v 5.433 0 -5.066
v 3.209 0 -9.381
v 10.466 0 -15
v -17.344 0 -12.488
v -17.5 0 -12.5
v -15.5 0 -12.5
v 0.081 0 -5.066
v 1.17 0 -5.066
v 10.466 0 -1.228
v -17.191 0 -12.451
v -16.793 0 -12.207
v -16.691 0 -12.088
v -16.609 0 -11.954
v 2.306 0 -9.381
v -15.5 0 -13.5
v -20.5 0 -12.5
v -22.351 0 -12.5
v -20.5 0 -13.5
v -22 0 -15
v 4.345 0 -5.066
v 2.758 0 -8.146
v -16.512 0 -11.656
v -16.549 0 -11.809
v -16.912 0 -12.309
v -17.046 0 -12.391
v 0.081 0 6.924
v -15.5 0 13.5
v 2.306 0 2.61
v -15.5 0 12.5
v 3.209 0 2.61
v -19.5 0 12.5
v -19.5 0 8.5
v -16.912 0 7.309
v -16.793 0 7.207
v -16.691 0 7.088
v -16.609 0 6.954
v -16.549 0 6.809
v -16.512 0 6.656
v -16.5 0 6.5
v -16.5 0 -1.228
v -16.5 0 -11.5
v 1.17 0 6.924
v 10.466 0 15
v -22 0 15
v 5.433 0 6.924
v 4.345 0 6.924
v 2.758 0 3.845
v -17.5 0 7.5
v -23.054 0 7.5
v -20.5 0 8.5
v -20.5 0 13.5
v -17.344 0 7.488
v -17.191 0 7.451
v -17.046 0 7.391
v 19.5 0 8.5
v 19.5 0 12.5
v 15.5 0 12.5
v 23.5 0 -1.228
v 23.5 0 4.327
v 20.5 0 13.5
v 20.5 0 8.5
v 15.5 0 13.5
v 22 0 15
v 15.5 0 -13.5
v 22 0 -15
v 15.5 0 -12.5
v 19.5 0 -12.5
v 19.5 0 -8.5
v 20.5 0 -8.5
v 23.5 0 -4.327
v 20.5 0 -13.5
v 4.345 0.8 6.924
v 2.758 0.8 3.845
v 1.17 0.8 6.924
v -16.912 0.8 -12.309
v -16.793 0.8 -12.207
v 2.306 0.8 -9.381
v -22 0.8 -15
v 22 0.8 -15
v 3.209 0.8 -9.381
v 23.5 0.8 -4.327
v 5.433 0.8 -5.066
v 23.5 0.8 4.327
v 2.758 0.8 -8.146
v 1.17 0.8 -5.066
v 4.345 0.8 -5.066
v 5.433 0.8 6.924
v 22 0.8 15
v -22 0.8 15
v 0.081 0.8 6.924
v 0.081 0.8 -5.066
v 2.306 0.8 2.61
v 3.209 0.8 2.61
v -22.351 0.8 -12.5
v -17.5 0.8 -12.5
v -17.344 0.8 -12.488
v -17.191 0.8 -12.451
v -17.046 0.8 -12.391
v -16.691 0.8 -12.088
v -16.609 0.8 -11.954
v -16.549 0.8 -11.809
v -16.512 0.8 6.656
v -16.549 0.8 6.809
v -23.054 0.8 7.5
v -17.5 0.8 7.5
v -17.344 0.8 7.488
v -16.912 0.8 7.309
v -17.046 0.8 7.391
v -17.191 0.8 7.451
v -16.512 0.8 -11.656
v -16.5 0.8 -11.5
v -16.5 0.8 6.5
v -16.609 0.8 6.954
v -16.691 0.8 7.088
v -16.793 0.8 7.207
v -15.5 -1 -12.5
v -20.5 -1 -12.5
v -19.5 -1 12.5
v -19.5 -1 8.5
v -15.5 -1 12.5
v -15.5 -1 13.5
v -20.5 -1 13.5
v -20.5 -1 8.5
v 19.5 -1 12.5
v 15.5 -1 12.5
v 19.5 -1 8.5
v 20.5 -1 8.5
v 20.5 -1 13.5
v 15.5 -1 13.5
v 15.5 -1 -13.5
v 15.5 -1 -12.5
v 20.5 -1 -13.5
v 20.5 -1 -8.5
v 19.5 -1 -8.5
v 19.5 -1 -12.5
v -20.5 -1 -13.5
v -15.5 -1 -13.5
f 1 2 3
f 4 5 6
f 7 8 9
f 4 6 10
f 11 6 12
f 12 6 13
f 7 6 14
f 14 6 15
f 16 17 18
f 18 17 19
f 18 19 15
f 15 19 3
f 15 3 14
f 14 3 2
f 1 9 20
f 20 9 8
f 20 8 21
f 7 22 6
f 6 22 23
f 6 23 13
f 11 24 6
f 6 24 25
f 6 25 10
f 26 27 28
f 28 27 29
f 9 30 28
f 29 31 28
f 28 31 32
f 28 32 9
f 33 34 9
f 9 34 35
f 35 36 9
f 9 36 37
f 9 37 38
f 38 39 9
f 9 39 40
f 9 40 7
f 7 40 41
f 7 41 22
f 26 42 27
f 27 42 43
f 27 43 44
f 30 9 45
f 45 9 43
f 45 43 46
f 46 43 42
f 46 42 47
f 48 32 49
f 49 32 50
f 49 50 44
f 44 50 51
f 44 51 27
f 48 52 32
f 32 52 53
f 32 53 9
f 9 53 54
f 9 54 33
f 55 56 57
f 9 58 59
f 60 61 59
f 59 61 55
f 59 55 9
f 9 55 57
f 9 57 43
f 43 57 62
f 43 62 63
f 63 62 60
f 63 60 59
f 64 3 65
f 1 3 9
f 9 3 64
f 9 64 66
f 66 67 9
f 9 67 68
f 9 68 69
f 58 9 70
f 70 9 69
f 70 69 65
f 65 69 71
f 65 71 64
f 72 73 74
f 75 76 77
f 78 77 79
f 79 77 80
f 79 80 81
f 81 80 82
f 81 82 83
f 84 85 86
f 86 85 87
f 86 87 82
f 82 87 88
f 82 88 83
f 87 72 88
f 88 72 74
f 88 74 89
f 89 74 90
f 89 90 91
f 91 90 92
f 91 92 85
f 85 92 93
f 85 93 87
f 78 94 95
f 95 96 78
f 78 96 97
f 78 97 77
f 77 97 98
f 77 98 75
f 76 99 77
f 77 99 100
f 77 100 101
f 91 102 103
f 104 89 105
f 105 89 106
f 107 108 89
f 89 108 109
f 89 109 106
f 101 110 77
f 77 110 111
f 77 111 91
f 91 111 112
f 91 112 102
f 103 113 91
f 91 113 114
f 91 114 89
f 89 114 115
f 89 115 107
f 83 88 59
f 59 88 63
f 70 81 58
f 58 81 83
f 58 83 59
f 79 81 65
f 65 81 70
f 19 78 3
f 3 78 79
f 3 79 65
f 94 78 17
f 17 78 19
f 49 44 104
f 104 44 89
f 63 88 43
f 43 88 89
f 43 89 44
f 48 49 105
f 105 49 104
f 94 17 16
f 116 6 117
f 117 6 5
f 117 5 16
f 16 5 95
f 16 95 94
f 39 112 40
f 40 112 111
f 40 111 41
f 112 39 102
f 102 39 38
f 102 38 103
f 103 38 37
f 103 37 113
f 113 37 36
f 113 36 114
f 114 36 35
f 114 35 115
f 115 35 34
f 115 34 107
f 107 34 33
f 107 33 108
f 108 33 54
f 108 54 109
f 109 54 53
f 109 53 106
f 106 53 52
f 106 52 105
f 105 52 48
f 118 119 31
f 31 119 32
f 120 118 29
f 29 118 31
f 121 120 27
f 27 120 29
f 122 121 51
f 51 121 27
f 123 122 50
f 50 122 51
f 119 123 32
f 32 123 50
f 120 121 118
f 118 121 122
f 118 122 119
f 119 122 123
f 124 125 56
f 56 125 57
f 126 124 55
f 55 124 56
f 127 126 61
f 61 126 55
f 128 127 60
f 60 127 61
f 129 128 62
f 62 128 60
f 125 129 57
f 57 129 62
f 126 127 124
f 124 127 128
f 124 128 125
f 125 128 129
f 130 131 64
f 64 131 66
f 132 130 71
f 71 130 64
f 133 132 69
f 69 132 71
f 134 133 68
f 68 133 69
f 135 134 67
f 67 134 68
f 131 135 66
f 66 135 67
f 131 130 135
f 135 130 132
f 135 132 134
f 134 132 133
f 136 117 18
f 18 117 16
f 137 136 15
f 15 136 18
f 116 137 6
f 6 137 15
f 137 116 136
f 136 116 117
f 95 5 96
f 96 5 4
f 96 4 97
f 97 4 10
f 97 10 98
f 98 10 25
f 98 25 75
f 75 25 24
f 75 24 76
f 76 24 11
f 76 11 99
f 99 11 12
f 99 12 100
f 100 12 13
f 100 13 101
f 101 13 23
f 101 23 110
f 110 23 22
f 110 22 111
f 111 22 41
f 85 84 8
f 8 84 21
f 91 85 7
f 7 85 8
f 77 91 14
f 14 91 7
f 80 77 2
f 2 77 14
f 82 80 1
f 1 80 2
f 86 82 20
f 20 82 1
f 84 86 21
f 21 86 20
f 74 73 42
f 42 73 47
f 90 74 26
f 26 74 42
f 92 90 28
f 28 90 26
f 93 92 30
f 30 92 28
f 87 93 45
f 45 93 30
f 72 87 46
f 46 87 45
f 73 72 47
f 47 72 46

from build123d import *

# Parameters (mm, degrees)
BOSS_EXTRUDE1_DEPTH = 0.8
SKETCH2_W           = 9.888461937
SKETCH2_H           = 20
CUT_EXTRUDE1_DEPTH  = 0.8
FILLET1_R           = 1
BOSS_EXTRUDE2_DEPTH = 1
SKETCH4_W           = 5
SKETCH4_H           = 1
BOSS_EXTRUDE3_DEPTH = 1
FILLET2_R           = 1
CUT_EXTRUDE2_DEPTH  = 10


with BuildPart() as part:
    # Sketch1 → Boss-Extrude1 (new body)
    with BuildSketch(Plane(origin=(0, 0, 0), x_dir=(1, 0, 0), z_dir=(0, 1, 0))):
        Polygon((-22, 15), (-23.5, 4.326945416), (-23.5, -4.326945416), (-22, -15), (22, -15), (23.5, -4.326945416), (23.5, 4.326945416), (22, 15), align=None)
    extrude(amount=BOSS_EXTRUDE1_DEPTH)

    # Sketch2 → Cut-Extrude1 (cut)
    with BuildSketch(Plane(origin=(0, 0.8, 0), x_dir=(1, 0, 0), z_dir=(0, 1, 0))):
        with Locations((-21.444230969, 2.5)):
            Rectangle(SKETCH2_W, SKETCH2_H)
    extrude(amount=-CUT_EXTRUDE1_DEPTH, mode=Mode.SUBTRACT)

    # Fillet1
    fillet1_edges = [part.edges().sort_by_distance(p)[0] for p in [
        (-16.5, 0.4, 7.5),
    ]]
    fillet(fillet1_edges, radius=FILLET1_R)

    # Sketch3 → Boss-Extrude2 (add)
    with BuildSketch(Plane.XZ):
        Polygon((-19.5, 13.5), (-20.5, 13.5), (-20.5, 12.5), (-20.5, 8.5), (-19.5, 8.5), (-19.5, 12.5), (-15.5, 12.5), (-15.5, 13.5), align=None)
        Polygon((19.5, 13.5), (15.5, 13.5), (15.5, 12.5), (19.5, 12.5), (19.5, 8.5), (20.5, 8.5), (20.5, 12.5), (20.5, 13.5), align=None)
        Polygon((19.5, -13.5), (20.5, -13.5), (20.5, -12.5), (20.5, -8.5), (19.5, -8.5), (19.5, -12.5), (15.5, -12.5), (15.5, -13.5), align=None)
    extrude(amount=BOSS_EXTRUDE2_DEPTH)

    # Sketch4 → Boss-Extrude3 (add)
    with BuildSketch(Plane.XZ):
        with Locations((-18, -13)):
            Rectangle(SKETCH4_W, SKETCH4_H)
    extrude(amount=BOSS_EXTRUDE3_DEPTH)

    # Fillet2
    fillet2_edges = [part.edges().sort_by_distance(p)[0] for p in [
        (-16.5, 0.4, -12.5),
    ]]
    fillet(fillet2_edges, radius=FILLET2_R)

    # Sketch5 → Cut-Extrude2 (cut)
    with BuildSketch(Plane(origin=(0, 0.8, 0), x_dir=(1, 0, 0), z_dir=(0, 1, 0))):
        Polygon((1.1702653, 5.066019343), (0.081403121, 5.066019343), (2.306192784, 9.380762933), (3.209337816, 9.380762933), (5.432855444, 5.066019343), (4.3452653, 5.066019343), (2.7577653, 8.145616699), align=None)
        Polygon((1.1702653, -6.924365272), (0.081403121, -6.924365272), (2.306192784, -2.609621682), (3.209337816, -2.609621682), (5.432855444, -6.924365272), (4.3452653, -6.924365272), (2.7577653, -3.844767916), align=None)
    extrude(amount=-CUT_EXTRUDE2_DEPTH, mode=Mode.SUBTRACT)


solid = part.part
